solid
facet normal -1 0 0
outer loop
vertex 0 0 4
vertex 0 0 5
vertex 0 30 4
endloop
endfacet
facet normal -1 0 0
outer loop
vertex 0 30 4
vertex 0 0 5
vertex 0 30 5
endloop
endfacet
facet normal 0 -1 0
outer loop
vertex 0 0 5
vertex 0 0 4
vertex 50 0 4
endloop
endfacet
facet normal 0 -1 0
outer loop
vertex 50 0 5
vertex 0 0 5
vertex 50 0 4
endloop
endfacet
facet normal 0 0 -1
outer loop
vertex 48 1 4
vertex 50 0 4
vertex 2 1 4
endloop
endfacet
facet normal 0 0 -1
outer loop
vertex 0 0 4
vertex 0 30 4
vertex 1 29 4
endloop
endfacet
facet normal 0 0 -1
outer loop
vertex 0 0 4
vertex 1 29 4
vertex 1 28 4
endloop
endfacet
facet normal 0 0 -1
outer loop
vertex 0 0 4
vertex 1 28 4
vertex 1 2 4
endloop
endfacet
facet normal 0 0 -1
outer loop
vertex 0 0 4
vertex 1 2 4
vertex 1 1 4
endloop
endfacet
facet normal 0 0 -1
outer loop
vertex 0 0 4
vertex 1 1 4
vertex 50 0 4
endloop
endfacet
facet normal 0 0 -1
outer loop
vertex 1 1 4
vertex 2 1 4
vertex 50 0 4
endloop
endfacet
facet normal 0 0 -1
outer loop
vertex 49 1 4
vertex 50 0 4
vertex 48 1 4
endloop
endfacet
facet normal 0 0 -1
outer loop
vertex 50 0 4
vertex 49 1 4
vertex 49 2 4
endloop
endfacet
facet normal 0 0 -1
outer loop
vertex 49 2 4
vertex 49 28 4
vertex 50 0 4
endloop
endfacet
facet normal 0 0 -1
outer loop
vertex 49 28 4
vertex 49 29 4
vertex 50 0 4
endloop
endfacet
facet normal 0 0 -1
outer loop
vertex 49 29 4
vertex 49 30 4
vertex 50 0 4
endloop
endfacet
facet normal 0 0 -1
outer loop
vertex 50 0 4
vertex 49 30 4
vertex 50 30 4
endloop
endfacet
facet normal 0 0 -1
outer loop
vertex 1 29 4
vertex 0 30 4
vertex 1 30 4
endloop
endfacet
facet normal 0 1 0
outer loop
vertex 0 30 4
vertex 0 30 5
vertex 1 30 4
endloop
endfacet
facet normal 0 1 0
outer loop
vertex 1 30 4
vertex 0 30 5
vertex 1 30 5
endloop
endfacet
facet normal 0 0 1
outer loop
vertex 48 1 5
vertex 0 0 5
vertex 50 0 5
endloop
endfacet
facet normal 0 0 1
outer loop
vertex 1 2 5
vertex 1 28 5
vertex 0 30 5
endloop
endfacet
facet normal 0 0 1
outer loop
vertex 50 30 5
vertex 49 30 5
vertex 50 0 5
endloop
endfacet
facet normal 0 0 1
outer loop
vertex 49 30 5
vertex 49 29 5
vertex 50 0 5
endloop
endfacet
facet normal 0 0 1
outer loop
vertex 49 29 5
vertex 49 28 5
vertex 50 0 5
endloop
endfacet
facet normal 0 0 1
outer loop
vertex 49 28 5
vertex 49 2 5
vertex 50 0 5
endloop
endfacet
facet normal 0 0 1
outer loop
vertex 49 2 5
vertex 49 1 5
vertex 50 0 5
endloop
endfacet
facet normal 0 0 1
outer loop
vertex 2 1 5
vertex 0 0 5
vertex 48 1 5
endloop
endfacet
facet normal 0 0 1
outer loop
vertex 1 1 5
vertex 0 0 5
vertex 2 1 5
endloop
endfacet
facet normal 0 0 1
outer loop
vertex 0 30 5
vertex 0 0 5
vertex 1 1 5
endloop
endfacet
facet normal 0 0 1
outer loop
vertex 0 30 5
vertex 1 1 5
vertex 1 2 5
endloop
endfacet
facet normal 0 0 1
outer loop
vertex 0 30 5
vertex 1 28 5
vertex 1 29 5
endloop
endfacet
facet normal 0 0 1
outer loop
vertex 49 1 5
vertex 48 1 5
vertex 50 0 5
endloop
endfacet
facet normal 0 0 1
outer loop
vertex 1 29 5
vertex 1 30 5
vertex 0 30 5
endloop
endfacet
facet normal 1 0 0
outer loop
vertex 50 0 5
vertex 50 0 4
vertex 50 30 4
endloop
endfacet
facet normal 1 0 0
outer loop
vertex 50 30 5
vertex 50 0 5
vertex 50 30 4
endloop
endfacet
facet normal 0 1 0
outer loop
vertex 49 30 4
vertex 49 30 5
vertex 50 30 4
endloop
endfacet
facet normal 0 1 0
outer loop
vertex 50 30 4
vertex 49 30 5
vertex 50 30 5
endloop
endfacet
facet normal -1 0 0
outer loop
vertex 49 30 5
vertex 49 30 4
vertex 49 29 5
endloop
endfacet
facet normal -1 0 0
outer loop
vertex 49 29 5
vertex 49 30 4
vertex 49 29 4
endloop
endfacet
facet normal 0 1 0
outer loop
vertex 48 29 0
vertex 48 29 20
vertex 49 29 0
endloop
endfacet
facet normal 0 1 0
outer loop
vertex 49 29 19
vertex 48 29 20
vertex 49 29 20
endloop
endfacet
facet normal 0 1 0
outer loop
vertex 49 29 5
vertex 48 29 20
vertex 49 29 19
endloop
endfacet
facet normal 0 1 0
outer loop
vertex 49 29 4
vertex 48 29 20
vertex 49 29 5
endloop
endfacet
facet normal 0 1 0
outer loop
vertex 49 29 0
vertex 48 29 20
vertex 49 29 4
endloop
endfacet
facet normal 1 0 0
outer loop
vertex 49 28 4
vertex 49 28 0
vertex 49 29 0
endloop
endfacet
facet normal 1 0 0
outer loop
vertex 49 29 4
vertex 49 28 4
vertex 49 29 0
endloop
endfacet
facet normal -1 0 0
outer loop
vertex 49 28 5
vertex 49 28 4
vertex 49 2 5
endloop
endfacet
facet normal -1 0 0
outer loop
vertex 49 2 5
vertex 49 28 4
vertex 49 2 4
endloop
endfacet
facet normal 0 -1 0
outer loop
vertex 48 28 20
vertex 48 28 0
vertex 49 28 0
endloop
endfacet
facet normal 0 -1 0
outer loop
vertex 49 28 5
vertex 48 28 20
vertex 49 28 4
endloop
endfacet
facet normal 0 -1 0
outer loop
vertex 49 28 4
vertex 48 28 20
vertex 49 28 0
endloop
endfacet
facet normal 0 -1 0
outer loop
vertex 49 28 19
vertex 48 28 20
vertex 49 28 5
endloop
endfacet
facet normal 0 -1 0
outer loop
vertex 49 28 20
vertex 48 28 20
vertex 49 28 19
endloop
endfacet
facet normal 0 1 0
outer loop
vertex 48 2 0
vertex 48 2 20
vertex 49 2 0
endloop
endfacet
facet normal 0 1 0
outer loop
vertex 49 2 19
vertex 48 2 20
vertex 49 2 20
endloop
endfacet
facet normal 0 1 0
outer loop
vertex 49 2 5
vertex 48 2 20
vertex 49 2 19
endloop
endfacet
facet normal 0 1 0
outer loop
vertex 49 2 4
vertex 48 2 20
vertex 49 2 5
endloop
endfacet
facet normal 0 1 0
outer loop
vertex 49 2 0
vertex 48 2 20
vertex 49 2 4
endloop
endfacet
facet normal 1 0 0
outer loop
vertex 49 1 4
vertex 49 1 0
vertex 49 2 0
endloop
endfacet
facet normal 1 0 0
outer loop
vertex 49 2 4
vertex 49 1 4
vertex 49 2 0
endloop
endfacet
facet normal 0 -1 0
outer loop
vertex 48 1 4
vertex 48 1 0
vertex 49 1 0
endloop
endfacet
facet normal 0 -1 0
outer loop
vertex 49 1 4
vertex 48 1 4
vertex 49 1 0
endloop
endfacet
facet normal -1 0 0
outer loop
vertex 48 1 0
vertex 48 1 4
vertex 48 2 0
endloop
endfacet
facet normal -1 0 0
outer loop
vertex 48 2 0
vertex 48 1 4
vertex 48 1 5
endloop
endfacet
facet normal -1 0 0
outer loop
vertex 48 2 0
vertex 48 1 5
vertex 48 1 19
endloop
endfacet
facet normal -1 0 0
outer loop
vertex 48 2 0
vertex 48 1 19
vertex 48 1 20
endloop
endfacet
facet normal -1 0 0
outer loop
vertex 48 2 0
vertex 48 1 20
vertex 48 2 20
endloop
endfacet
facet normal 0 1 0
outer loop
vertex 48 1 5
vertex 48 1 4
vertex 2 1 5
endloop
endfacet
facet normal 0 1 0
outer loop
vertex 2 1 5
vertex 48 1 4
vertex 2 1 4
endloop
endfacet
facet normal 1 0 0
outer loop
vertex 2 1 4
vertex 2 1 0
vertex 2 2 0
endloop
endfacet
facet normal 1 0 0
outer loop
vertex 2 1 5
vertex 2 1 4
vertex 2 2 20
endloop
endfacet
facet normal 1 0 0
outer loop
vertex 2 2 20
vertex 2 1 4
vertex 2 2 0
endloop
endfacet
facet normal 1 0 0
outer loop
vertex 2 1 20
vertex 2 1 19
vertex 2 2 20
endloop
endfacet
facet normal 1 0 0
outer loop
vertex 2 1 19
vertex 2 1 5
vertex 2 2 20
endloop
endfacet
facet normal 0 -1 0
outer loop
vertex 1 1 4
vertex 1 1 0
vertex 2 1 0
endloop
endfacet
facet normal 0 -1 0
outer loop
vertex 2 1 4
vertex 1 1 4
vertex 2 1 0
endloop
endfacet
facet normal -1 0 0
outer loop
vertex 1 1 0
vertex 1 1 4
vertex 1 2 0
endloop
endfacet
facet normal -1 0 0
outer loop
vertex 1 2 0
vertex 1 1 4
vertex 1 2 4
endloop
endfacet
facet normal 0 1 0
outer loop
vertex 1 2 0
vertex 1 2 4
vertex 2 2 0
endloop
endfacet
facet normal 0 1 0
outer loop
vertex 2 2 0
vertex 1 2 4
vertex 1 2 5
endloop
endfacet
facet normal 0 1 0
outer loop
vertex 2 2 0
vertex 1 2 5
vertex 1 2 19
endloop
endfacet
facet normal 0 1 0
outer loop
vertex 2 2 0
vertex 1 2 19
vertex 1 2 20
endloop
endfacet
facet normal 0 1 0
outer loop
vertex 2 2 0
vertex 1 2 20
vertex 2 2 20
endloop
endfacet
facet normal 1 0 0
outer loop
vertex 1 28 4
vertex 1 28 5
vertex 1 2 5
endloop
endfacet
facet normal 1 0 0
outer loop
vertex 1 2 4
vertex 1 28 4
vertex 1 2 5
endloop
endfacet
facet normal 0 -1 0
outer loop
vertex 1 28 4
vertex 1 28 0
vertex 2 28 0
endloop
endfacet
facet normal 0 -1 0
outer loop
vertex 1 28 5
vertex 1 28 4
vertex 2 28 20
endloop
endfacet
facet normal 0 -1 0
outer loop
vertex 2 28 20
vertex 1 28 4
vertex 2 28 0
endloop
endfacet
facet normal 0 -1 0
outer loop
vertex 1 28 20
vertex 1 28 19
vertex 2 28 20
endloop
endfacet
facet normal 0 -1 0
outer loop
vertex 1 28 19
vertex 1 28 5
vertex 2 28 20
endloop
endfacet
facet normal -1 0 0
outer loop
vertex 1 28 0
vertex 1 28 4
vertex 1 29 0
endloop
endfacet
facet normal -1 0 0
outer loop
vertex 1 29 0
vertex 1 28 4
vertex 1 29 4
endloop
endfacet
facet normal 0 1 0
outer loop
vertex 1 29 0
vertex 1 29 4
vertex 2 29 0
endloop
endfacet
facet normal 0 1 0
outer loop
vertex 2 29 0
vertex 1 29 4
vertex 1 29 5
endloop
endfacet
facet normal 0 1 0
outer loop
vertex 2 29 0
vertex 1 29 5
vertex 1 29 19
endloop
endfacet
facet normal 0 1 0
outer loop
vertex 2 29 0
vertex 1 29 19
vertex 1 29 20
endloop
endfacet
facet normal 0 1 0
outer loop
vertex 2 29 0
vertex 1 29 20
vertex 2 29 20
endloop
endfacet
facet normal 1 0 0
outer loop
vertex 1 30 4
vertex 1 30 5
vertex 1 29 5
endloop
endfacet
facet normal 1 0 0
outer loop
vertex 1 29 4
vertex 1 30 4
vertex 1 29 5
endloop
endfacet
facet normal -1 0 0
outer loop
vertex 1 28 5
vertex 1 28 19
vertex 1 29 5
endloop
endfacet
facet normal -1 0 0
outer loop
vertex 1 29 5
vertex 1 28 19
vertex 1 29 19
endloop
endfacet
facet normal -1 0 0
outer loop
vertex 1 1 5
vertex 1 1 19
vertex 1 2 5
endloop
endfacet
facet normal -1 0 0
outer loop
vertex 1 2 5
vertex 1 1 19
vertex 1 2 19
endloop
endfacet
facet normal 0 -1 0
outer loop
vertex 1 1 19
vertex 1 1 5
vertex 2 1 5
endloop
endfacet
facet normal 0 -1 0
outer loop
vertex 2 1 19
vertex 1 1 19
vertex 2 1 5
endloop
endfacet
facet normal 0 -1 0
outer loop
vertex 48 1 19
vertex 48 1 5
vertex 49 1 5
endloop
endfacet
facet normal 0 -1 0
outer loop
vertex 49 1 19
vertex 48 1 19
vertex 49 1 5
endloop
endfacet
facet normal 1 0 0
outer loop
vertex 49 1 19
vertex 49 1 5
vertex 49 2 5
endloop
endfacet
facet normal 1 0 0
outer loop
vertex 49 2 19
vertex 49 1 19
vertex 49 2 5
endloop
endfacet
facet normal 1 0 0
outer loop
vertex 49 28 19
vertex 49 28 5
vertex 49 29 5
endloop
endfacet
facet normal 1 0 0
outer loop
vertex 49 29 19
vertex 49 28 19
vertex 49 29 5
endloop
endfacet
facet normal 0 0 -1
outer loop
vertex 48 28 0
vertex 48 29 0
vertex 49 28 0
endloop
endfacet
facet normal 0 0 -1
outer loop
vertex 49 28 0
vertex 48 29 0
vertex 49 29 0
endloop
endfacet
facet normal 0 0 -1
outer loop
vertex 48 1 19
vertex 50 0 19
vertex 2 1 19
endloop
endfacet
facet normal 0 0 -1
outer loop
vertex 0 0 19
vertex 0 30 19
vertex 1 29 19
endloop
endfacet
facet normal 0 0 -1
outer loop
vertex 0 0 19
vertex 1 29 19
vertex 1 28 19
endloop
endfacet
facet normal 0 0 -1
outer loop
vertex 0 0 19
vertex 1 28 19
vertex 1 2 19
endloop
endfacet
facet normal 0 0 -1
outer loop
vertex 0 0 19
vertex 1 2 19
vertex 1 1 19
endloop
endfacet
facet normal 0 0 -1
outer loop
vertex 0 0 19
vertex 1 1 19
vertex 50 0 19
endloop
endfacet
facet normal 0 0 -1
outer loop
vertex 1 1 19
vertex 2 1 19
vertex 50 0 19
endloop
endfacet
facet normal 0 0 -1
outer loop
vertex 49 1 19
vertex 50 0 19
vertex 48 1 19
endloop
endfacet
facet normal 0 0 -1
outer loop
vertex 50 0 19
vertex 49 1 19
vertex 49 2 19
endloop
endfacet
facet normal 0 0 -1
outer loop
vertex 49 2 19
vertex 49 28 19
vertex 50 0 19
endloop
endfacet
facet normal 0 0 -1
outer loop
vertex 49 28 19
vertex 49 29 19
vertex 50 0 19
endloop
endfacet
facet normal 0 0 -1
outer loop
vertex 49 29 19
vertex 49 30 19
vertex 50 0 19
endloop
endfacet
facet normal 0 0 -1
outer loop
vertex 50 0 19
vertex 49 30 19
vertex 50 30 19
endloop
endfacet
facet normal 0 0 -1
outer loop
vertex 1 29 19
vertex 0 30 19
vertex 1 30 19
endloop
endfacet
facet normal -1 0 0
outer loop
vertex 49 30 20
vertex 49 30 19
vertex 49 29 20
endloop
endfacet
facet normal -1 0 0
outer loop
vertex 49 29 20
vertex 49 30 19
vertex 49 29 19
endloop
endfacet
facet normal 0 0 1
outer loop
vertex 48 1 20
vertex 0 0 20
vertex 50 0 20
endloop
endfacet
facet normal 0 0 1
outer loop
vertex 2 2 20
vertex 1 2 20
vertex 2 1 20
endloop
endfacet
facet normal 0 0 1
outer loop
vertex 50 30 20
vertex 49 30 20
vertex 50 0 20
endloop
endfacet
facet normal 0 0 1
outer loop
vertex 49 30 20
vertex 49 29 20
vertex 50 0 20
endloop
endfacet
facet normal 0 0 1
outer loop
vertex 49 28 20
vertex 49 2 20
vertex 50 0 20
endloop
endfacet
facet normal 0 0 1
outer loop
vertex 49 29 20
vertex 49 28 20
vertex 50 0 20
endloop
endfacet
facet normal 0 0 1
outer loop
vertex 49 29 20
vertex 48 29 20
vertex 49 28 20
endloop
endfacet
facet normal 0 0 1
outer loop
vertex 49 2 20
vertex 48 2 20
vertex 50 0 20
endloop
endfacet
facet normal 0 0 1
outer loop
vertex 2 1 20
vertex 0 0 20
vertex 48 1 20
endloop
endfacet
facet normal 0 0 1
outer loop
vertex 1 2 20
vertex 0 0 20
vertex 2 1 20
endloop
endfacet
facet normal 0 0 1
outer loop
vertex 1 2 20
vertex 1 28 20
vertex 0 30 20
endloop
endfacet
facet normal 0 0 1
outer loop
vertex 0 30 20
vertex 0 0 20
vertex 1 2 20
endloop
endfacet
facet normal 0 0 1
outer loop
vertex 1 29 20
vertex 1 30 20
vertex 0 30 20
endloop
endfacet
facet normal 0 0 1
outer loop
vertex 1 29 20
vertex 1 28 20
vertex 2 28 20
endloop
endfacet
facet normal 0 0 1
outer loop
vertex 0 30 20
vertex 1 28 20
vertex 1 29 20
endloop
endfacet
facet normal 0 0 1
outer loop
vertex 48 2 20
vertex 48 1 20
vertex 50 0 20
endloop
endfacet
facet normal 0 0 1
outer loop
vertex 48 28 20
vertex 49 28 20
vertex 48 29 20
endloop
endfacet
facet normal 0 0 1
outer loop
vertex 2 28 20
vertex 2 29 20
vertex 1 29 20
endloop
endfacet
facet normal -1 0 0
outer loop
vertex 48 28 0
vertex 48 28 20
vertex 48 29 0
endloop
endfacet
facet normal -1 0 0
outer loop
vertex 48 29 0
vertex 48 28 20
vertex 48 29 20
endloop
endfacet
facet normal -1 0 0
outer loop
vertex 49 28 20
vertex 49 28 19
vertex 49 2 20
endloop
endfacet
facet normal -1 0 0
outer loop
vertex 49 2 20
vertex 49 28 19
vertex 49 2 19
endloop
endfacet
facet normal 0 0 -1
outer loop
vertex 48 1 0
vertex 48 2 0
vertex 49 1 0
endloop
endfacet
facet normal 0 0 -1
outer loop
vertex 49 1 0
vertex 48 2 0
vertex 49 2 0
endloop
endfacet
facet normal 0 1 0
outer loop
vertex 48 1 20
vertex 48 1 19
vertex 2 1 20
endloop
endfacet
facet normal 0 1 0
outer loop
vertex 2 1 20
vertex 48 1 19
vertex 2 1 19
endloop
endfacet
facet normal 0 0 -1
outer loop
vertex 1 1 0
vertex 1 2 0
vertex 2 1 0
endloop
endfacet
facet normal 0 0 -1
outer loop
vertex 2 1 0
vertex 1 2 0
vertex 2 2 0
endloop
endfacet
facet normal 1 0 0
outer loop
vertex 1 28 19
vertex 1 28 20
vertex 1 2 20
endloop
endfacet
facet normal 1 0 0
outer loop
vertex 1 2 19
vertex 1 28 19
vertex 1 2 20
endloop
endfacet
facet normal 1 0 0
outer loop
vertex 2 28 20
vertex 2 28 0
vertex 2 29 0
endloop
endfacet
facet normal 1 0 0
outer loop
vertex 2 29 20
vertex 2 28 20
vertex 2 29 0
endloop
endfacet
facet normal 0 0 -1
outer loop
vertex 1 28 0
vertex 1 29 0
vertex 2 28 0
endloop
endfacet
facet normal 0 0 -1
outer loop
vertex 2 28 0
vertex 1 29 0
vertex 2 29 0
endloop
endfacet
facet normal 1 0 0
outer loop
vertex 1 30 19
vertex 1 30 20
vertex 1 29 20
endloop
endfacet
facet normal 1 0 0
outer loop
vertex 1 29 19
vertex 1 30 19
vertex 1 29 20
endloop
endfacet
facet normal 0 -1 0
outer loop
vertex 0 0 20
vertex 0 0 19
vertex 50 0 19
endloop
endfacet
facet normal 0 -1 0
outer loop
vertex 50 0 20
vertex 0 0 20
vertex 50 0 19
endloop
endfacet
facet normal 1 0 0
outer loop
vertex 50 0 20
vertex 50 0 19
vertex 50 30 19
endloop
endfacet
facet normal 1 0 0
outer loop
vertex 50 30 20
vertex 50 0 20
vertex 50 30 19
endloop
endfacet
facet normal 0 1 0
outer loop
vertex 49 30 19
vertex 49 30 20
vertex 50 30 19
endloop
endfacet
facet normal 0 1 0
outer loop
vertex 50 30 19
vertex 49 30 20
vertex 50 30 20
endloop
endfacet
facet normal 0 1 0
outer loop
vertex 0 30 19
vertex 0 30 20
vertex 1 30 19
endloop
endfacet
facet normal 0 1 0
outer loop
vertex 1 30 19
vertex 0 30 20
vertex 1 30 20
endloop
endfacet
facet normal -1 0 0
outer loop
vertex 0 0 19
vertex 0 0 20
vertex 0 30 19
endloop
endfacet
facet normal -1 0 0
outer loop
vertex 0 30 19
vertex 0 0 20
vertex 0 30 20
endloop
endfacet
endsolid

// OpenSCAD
// CONFIGURATION

table_width = 50; // Total sizes
table_depth = 30;
table_height = 20;

foot_rest_height = 5; // Height of the *top*

tube_thickness = 1;

// CONFIGURATION END

// CALCULATIONS

table_x_size = table_width;
table_y_size = table_depth;
table_z_size = table_height;

foot_rest_z_position = foot_rest_height - tube_thickness;

// CALCULATIONS END

// MODULES
module leg() {
    cube(size = [tube_thickness, tube_thickness, table_z_size]);
}

module legs() {
    union() {
        translate([tube_thickness, tube_thickness, 0]) {
            leg();
        }
        translate([table_x_size - tube_thickness * 2, tube_thickness, 0]) {
            leg();
        }
        translate([table_x_size - tube_thickness * 2, table_y_size - tube_thickness * 2, 0]) {
            leg();
        }
        translate([tube_thickness, table_y_size - tube_thickness * 2, 0]) {
            leg();
        }
    }
}

module width_bar() {
    cube(size = [table_x_size, tube_thickness, tube_thickness]);
}

module width_bars() {
    union() {
        translate([0, 0, foot_rest_z_position]) {
            width_bar();
        }
        translate([0, 0, table_z_size - tube_thickness]) {
            width_bar();
        }
    }
}

module depth_bar() {
    cube(size = [tube_thickness, table_y_size, tube_thickness]);
}

module depth_bars() {
    union() {
        translate([0, 0, foot_rest_z_position]) {
            depth_bar();
        }
        translate([table_x_size - tube_thickness, 0, foot_rest_z_position]) {
            depth_bar();
        }
        translate([0, 0, table_z_size - tube_thickness]) {
            depth_bar();
        }
        translate([table_x_size - tube_thickness, 0, table_z_size - tube_thickness]) {
            depth_bar();
        }
    }
}

module table() {
    legs();
    width_bars();
    depth_bars();
}

// MODULES END

table();
